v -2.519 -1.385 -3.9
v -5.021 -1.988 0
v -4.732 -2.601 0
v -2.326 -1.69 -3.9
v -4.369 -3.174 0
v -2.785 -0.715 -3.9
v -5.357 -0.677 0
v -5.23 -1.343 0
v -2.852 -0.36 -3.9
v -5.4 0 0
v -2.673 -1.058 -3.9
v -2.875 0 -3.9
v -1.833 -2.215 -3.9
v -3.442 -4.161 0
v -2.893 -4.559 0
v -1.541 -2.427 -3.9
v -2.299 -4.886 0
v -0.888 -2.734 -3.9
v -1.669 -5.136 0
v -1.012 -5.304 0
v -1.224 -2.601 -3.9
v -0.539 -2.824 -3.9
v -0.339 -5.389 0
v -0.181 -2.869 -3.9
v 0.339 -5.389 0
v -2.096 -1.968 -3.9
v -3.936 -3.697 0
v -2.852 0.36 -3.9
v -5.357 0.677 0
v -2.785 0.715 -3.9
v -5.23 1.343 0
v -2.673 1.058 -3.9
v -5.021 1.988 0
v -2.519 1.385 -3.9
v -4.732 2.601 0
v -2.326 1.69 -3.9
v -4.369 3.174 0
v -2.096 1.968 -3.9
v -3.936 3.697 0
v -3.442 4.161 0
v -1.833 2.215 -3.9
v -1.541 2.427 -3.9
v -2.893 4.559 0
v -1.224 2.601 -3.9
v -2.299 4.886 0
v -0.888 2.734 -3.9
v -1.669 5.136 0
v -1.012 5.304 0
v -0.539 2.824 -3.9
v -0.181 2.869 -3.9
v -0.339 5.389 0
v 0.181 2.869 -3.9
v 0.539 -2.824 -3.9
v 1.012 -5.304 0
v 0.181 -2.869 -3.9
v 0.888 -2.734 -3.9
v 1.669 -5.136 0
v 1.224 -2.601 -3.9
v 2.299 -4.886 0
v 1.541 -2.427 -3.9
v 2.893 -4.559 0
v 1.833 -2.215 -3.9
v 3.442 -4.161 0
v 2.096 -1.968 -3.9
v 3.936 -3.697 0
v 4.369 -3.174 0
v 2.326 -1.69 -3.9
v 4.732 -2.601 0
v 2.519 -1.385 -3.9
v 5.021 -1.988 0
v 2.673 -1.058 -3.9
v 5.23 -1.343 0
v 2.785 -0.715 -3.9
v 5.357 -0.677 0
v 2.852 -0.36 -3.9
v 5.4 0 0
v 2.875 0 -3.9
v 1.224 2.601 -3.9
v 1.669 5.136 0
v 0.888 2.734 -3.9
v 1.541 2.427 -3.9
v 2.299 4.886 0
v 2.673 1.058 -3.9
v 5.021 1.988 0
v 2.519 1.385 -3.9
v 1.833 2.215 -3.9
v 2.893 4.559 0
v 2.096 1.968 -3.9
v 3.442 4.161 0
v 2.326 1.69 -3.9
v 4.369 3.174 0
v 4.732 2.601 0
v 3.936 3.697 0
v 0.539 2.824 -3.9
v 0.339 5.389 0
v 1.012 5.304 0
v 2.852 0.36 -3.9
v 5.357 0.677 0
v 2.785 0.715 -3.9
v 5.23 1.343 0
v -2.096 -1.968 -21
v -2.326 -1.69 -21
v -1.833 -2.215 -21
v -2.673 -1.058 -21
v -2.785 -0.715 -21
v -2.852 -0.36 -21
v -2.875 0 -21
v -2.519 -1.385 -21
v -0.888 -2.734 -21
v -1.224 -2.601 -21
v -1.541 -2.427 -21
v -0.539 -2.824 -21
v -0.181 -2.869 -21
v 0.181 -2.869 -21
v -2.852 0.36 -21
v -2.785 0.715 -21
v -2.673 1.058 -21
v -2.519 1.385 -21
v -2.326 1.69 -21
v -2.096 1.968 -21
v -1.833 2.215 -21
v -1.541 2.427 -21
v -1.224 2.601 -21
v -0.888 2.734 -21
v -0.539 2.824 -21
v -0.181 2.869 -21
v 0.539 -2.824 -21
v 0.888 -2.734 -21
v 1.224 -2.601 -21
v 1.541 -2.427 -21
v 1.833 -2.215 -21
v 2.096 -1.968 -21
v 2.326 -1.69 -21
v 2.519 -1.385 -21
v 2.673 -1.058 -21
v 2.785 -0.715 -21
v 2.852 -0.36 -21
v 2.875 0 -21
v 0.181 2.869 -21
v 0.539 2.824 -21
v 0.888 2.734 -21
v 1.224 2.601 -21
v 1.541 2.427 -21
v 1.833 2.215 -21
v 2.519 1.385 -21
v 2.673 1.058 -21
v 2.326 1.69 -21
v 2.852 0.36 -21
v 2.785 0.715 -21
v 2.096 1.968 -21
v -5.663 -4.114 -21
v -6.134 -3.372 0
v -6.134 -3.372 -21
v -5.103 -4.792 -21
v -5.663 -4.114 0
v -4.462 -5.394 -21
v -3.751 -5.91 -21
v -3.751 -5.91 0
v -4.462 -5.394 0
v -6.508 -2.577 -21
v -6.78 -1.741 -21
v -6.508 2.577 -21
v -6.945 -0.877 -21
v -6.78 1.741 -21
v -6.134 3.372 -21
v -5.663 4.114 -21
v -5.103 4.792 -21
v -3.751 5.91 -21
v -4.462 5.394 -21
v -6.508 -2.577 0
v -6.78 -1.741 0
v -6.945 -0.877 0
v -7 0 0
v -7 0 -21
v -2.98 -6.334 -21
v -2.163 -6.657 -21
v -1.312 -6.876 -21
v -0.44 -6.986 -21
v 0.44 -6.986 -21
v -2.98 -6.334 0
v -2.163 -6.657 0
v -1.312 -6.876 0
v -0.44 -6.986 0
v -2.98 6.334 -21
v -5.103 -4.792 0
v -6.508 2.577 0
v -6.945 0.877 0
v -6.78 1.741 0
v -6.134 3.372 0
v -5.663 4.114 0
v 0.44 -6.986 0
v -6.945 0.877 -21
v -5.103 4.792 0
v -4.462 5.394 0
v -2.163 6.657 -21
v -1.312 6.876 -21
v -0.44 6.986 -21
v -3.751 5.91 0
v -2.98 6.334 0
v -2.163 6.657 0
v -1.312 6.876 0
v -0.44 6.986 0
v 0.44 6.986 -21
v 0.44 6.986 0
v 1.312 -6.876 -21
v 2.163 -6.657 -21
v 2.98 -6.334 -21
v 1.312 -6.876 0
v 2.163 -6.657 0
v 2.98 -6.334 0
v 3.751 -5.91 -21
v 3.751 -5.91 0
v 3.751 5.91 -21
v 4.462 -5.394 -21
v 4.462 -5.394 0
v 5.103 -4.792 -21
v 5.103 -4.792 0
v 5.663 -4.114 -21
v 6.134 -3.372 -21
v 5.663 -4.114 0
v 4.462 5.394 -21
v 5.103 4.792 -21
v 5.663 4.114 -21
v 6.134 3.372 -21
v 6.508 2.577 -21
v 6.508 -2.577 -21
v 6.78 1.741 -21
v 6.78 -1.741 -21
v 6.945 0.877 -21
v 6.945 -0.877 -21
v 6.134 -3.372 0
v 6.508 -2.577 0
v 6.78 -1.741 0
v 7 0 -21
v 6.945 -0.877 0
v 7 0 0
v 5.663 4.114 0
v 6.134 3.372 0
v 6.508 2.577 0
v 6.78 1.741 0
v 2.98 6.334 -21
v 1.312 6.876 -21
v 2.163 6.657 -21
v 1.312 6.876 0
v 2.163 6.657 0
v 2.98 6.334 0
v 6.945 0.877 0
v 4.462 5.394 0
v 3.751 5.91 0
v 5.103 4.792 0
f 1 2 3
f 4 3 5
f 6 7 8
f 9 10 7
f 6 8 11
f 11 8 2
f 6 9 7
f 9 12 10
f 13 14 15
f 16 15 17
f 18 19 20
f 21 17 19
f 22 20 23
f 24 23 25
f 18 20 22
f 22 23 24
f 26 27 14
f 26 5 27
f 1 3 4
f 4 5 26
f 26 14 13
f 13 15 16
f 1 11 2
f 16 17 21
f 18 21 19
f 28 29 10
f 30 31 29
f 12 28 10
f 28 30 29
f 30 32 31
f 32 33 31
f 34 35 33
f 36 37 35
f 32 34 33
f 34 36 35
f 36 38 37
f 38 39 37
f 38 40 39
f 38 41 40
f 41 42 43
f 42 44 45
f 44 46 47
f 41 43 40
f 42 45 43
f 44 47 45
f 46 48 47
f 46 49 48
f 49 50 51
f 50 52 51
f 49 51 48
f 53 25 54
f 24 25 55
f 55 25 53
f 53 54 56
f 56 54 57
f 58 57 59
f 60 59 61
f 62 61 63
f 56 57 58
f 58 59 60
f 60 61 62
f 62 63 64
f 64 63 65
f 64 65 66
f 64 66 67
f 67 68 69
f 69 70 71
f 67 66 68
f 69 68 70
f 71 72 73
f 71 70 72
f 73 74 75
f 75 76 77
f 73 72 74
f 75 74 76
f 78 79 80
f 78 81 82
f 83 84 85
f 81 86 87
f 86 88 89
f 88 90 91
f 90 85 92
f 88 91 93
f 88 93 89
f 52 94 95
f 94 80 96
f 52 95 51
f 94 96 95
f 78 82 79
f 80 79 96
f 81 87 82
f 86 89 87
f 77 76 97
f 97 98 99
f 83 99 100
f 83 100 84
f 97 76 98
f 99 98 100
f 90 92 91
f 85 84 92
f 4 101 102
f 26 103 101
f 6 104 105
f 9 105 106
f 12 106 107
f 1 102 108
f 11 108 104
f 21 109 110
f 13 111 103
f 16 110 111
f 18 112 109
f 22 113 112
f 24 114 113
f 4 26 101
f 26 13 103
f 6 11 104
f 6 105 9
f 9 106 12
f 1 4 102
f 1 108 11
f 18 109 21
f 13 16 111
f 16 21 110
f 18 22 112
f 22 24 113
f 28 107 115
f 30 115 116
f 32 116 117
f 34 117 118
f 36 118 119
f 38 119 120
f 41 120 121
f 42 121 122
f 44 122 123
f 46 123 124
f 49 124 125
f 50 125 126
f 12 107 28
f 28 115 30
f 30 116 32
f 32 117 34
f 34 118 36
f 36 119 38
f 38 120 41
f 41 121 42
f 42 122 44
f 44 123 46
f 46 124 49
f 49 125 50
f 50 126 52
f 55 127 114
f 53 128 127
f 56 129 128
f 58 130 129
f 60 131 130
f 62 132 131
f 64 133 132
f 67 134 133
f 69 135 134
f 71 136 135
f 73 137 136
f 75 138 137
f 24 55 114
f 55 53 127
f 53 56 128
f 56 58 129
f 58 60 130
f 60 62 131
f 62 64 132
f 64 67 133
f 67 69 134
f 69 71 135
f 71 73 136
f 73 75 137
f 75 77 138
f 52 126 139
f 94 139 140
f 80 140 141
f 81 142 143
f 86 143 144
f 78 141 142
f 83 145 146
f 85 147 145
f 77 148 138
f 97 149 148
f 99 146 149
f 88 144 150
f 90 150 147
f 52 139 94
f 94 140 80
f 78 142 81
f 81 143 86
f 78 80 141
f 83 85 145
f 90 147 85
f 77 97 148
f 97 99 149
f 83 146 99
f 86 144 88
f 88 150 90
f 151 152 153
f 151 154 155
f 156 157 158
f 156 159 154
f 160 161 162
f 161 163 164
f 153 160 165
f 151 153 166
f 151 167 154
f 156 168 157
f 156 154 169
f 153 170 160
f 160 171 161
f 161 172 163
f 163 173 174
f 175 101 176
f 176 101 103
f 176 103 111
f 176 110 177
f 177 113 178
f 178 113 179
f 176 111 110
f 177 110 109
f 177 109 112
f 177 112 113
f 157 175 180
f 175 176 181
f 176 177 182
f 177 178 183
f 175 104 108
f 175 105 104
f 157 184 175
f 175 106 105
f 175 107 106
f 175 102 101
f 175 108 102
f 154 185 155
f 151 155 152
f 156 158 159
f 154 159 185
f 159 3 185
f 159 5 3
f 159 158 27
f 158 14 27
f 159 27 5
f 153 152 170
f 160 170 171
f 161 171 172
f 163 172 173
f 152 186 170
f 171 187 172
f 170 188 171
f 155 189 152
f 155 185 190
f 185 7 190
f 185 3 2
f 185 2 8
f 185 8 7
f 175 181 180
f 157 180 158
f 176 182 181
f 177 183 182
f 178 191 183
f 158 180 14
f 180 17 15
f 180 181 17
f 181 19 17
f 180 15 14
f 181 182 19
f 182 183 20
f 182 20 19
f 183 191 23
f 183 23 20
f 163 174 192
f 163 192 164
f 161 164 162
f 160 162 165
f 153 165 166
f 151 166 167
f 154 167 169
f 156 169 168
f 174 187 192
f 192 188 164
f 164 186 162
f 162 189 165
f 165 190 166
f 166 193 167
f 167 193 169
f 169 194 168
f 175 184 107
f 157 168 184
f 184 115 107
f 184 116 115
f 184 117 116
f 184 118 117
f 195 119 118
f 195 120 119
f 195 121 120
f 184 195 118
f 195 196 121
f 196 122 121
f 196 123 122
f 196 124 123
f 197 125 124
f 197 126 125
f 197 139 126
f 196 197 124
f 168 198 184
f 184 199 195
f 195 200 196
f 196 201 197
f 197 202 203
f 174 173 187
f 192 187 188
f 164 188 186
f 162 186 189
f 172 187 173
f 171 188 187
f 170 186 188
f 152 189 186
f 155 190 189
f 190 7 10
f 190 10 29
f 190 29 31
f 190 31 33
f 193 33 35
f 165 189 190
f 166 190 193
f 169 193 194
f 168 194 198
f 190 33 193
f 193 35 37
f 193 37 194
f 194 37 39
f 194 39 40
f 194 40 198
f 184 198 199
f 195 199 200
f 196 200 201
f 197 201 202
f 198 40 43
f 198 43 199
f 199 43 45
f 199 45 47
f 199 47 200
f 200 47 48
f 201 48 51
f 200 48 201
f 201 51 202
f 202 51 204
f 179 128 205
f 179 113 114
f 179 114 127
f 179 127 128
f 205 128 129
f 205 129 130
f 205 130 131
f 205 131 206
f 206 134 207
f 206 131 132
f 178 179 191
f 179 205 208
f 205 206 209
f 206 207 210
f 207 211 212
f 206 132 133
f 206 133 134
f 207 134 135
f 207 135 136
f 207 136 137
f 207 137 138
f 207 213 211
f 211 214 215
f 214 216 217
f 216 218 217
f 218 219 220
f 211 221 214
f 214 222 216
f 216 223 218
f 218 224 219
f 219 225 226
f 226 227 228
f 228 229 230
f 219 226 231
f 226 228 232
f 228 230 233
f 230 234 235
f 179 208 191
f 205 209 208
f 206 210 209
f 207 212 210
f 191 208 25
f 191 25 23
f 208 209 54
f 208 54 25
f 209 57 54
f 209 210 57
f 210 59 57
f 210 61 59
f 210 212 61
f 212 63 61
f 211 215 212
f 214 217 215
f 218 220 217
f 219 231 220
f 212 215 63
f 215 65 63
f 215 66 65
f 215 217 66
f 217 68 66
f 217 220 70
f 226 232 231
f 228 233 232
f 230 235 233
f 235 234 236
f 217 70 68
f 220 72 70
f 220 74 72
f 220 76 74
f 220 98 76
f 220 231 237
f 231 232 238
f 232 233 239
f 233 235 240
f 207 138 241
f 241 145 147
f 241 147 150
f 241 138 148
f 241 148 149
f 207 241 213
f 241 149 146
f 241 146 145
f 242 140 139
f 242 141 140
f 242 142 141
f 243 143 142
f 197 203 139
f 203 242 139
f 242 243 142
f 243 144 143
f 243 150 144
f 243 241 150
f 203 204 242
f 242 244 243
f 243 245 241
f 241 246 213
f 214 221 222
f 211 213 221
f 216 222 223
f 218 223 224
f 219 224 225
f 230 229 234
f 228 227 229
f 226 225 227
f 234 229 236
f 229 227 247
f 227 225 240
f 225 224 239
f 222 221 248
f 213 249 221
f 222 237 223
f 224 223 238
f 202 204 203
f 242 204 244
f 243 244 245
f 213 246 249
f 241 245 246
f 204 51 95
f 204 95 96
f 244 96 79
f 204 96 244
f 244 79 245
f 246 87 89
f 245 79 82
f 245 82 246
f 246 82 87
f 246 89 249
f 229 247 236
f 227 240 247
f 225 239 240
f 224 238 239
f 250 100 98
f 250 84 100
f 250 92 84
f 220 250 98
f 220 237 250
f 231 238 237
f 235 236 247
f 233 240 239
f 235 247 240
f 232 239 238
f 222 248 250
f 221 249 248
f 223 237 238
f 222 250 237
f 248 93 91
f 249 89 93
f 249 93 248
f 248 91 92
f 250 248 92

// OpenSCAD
$fn = 50;

difference() {
	union() {
		translate(v = [0, 0, -21.0]) {
			cylinder(h = 21, r = 7.0);
		}
	}
	union() {
		translate(v = [0, 0, 0]) {
			rotate(a = [0, 0, 0]) {
				difference() {
					union() {
						translate(v = [0, 0, -24.0]) {
							cylinder(h = 24, r = 2.6);
						}
						translate(v = [0, 0, -3.9]) {
							cylinder(h = 3.9, r1 = 2.875, r2 = 5.4);
						}
						translate(v = [0, 0, -24.0]) {
							cylinder(h = 24, r = 2.875);
						}
						translate(v = [0, 0, -24.0]) {
							cylinder(h = 24, r = 2.6);
						}
					}
					union();
				}
			}
		}
	}
}
